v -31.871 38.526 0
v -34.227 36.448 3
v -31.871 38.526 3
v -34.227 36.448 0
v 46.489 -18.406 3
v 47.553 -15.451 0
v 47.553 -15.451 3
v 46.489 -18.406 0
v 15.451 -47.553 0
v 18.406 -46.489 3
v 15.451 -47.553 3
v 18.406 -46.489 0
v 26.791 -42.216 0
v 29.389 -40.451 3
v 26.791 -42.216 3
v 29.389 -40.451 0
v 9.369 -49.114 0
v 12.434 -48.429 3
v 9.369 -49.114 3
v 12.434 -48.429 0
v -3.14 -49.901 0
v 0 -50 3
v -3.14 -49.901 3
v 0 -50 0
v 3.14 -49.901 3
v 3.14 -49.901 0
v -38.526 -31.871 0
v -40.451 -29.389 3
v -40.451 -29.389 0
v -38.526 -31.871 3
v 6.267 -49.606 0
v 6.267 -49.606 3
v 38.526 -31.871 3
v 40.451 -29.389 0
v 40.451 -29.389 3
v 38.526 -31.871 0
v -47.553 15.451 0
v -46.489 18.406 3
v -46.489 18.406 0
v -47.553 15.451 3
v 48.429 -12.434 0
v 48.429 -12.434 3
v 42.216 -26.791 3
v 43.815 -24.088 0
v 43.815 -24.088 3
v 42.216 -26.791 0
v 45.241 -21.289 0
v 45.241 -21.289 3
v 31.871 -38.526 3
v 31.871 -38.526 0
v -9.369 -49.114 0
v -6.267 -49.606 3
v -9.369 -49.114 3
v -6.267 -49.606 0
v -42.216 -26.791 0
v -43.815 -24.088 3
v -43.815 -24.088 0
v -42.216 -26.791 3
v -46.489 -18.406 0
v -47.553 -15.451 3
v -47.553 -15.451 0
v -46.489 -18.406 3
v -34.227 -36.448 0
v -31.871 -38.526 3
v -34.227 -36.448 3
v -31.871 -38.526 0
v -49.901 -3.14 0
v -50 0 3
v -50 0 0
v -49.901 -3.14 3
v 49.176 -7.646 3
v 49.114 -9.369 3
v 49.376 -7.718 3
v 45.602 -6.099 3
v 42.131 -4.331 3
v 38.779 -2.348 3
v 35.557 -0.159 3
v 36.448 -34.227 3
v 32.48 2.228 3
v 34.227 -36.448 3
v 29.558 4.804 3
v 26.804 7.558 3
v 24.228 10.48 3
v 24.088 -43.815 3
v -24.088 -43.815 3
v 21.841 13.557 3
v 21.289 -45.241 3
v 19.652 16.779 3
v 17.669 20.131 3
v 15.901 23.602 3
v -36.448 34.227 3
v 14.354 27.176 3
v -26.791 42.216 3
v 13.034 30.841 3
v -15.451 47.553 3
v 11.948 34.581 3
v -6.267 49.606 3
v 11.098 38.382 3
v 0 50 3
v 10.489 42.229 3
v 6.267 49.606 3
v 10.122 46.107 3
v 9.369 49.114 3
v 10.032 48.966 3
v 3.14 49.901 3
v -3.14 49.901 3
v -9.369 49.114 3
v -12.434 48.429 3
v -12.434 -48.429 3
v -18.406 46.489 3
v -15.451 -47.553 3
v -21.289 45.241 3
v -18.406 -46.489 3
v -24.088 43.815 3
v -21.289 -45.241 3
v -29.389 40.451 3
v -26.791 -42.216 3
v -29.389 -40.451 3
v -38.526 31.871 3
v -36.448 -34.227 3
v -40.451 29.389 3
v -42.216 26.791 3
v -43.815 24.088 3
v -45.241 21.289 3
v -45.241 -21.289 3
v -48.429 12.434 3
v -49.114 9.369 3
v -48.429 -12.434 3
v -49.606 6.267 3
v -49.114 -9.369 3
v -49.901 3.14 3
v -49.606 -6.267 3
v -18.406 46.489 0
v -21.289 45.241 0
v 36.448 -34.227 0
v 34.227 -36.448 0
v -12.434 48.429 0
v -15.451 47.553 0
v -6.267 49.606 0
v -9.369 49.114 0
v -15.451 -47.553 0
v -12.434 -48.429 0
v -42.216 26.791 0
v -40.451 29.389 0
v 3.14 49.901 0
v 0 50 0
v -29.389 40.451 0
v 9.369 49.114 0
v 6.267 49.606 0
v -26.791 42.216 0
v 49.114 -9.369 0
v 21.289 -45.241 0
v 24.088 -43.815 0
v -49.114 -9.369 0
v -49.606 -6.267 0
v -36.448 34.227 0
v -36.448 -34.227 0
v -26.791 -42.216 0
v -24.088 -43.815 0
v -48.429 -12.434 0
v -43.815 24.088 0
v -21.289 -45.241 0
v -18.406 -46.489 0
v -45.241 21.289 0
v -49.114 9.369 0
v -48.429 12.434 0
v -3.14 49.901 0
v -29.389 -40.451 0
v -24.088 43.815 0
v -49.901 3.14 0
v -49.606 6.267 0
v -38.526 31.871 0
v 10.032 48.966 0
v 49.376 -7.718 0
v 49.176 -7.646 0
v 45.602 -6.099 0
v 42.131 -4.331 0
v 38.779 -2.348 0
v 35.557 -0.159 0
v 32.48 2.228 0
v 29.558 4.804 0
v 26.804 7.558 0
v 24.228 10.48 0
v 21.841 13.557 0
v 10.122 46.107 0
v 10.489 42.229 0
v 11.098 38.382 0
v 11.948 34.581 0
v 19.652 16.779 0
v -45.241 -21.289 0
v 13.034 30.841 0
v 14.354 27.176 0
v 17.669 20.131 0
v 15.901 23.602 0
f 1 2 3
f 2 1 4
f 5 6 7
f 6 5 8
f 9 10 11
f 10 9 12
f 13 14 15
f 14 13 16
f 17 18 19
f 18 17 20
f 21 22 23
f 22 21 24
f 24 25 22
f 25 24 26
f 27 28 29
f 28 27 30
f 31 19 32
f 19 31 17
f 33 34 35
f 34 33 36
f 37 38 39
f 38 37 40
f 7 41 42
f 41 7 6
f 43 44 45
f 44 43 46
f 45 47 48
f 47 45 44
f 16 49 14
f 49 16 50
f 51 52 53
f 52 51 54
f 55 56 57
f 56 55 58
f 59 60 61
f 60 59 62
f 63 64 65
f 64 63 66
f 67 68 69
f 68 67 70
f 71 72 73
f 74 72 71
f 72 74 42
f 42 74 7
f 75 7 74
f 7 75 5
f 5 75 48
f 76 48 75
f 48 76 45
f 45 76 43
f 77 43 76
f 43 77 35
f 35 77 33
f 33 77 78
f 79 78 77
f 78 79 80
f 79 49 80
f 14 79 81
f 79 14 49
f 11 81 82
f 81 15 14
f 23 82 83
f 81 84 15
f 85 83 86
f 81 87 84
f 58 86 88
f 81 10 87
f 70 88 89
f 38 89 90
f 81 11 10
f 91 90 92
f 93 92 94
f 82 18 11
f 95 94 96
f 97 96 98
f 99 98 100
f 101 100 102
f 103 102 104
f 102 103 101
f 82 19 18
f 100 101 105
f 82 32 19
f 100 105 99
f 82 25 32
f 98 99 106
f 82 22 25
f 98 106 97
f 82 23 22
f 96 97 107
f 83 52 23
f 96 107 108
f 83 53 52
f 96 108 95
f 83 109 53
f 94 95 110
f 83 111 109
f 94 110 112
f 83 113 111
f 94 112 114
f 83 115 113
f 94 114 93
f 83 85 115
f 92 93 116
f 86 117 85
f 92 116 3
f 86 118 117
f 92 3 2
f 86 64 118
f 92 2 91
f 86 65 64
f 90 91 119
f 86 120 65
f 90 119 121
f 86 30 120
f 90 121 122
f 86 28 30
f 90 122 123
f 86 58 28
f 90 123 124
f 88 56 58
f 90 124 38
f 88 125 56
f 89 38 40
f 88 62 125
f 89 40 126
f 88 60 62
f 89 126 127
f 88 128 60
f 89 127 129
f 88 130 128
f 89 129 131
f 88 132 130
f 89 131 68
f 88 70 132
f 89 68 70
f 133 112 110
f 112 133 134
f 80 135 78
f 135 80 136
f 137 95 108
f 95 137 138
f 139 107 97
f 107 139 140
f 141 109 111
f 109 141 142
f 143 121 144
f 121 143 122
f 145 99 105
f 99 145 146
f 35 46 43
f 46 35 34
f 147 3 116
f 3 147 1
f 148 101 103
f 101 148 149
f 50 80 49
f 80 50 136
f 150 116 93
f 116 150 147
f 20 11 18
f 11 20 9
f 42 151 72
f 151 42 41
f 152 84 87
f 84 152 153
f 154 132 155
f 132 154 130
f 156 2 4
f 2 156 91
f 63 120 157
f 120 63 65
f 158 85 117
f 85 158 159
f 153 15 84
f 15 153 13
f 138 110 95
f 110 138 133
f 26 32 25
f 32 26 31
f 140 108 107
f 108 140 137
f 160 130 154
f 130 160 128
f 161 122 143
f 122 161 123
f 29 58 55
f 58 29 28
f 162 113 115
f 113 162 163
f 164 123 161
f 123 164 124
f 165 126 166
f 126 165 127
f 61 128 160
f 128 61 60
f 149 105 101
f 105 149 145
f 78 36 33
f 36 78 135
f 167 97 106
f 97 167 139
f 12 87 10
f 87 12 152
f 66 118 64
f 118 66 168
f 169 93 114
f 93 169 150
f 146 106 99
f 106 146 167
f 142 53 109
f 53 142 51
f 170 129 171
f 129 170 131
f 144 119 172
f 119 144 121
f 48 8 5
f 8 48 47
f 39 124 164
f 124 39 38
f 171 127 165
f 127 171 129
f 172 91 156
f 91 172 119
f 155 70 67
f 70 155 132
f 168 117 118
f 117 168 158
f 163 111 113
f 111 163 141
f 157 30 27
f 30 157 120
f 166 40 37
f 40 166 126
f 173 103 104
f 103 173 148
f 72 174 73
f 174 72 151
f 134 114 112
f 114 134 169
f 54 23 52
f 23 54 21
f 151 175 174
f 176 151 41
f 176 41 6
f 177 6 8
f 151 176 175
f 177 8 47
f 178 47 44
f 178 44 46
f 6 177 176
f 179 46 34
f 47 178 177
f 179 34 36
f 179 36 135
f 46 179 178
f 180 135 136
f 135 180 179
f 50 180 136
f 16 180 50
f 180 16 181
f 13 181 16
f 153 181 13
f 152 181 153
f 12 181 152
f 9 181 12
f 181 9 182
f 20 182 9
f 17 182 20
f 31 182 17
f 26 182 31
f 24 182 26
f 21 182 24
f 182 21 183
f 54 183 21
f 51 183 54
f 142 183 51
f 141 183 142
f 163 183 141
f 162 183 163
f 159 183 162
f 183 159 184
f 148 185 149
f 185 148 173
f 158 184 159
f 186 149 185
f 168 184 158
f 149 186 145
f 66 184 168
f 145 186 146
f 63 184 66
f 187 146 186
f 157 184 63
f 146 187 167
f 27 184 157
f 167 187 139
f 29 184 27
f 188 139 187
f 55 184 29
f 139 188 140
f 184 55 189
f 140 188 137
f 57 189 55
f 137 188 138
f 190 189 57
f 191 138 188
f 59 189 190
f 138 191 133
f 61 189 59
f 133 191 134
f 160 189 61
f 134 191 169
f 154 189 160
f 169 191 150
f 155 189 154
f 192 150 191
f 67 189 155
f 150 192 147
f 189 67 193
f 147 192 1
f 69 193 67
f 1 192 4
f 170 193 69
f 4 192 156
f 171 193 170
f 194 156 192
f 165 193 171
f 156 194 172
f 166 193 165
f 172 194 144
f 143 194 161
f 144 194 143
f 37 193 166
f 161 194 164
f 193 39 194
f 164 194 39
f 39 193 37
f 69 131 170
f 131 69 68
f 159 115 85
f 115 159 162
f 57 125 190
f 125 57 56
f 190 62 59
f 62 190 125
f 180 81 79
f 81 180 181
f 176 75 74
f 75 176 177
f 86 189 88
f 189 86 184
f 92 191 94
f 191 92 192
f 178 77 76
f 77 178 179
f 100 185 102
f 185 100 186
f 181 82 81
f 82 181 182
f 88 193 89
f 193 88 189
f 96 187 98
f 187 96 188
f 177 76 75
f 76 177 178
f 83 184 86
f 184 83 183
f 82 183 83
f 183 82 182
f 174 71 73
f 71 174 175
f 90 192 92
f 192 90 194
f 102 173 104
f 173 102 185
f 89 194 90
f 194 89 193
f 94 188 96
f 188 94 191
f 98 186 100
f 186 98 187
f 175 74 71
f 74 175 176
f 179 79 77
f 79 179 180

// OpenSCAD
ear_radius = 50;
ear_height = 3;
cutout_radius = ear_radius + 22;
$fn = 100;

difference() {
	color("darkgray") cylinder(h = ear_height, r = ear_radius);
	color("pink") translate([ear_radius + 22, ear_radius, -.5]) cylinder(h = ear_height + 1, r = cutout_radius - 10);
}
